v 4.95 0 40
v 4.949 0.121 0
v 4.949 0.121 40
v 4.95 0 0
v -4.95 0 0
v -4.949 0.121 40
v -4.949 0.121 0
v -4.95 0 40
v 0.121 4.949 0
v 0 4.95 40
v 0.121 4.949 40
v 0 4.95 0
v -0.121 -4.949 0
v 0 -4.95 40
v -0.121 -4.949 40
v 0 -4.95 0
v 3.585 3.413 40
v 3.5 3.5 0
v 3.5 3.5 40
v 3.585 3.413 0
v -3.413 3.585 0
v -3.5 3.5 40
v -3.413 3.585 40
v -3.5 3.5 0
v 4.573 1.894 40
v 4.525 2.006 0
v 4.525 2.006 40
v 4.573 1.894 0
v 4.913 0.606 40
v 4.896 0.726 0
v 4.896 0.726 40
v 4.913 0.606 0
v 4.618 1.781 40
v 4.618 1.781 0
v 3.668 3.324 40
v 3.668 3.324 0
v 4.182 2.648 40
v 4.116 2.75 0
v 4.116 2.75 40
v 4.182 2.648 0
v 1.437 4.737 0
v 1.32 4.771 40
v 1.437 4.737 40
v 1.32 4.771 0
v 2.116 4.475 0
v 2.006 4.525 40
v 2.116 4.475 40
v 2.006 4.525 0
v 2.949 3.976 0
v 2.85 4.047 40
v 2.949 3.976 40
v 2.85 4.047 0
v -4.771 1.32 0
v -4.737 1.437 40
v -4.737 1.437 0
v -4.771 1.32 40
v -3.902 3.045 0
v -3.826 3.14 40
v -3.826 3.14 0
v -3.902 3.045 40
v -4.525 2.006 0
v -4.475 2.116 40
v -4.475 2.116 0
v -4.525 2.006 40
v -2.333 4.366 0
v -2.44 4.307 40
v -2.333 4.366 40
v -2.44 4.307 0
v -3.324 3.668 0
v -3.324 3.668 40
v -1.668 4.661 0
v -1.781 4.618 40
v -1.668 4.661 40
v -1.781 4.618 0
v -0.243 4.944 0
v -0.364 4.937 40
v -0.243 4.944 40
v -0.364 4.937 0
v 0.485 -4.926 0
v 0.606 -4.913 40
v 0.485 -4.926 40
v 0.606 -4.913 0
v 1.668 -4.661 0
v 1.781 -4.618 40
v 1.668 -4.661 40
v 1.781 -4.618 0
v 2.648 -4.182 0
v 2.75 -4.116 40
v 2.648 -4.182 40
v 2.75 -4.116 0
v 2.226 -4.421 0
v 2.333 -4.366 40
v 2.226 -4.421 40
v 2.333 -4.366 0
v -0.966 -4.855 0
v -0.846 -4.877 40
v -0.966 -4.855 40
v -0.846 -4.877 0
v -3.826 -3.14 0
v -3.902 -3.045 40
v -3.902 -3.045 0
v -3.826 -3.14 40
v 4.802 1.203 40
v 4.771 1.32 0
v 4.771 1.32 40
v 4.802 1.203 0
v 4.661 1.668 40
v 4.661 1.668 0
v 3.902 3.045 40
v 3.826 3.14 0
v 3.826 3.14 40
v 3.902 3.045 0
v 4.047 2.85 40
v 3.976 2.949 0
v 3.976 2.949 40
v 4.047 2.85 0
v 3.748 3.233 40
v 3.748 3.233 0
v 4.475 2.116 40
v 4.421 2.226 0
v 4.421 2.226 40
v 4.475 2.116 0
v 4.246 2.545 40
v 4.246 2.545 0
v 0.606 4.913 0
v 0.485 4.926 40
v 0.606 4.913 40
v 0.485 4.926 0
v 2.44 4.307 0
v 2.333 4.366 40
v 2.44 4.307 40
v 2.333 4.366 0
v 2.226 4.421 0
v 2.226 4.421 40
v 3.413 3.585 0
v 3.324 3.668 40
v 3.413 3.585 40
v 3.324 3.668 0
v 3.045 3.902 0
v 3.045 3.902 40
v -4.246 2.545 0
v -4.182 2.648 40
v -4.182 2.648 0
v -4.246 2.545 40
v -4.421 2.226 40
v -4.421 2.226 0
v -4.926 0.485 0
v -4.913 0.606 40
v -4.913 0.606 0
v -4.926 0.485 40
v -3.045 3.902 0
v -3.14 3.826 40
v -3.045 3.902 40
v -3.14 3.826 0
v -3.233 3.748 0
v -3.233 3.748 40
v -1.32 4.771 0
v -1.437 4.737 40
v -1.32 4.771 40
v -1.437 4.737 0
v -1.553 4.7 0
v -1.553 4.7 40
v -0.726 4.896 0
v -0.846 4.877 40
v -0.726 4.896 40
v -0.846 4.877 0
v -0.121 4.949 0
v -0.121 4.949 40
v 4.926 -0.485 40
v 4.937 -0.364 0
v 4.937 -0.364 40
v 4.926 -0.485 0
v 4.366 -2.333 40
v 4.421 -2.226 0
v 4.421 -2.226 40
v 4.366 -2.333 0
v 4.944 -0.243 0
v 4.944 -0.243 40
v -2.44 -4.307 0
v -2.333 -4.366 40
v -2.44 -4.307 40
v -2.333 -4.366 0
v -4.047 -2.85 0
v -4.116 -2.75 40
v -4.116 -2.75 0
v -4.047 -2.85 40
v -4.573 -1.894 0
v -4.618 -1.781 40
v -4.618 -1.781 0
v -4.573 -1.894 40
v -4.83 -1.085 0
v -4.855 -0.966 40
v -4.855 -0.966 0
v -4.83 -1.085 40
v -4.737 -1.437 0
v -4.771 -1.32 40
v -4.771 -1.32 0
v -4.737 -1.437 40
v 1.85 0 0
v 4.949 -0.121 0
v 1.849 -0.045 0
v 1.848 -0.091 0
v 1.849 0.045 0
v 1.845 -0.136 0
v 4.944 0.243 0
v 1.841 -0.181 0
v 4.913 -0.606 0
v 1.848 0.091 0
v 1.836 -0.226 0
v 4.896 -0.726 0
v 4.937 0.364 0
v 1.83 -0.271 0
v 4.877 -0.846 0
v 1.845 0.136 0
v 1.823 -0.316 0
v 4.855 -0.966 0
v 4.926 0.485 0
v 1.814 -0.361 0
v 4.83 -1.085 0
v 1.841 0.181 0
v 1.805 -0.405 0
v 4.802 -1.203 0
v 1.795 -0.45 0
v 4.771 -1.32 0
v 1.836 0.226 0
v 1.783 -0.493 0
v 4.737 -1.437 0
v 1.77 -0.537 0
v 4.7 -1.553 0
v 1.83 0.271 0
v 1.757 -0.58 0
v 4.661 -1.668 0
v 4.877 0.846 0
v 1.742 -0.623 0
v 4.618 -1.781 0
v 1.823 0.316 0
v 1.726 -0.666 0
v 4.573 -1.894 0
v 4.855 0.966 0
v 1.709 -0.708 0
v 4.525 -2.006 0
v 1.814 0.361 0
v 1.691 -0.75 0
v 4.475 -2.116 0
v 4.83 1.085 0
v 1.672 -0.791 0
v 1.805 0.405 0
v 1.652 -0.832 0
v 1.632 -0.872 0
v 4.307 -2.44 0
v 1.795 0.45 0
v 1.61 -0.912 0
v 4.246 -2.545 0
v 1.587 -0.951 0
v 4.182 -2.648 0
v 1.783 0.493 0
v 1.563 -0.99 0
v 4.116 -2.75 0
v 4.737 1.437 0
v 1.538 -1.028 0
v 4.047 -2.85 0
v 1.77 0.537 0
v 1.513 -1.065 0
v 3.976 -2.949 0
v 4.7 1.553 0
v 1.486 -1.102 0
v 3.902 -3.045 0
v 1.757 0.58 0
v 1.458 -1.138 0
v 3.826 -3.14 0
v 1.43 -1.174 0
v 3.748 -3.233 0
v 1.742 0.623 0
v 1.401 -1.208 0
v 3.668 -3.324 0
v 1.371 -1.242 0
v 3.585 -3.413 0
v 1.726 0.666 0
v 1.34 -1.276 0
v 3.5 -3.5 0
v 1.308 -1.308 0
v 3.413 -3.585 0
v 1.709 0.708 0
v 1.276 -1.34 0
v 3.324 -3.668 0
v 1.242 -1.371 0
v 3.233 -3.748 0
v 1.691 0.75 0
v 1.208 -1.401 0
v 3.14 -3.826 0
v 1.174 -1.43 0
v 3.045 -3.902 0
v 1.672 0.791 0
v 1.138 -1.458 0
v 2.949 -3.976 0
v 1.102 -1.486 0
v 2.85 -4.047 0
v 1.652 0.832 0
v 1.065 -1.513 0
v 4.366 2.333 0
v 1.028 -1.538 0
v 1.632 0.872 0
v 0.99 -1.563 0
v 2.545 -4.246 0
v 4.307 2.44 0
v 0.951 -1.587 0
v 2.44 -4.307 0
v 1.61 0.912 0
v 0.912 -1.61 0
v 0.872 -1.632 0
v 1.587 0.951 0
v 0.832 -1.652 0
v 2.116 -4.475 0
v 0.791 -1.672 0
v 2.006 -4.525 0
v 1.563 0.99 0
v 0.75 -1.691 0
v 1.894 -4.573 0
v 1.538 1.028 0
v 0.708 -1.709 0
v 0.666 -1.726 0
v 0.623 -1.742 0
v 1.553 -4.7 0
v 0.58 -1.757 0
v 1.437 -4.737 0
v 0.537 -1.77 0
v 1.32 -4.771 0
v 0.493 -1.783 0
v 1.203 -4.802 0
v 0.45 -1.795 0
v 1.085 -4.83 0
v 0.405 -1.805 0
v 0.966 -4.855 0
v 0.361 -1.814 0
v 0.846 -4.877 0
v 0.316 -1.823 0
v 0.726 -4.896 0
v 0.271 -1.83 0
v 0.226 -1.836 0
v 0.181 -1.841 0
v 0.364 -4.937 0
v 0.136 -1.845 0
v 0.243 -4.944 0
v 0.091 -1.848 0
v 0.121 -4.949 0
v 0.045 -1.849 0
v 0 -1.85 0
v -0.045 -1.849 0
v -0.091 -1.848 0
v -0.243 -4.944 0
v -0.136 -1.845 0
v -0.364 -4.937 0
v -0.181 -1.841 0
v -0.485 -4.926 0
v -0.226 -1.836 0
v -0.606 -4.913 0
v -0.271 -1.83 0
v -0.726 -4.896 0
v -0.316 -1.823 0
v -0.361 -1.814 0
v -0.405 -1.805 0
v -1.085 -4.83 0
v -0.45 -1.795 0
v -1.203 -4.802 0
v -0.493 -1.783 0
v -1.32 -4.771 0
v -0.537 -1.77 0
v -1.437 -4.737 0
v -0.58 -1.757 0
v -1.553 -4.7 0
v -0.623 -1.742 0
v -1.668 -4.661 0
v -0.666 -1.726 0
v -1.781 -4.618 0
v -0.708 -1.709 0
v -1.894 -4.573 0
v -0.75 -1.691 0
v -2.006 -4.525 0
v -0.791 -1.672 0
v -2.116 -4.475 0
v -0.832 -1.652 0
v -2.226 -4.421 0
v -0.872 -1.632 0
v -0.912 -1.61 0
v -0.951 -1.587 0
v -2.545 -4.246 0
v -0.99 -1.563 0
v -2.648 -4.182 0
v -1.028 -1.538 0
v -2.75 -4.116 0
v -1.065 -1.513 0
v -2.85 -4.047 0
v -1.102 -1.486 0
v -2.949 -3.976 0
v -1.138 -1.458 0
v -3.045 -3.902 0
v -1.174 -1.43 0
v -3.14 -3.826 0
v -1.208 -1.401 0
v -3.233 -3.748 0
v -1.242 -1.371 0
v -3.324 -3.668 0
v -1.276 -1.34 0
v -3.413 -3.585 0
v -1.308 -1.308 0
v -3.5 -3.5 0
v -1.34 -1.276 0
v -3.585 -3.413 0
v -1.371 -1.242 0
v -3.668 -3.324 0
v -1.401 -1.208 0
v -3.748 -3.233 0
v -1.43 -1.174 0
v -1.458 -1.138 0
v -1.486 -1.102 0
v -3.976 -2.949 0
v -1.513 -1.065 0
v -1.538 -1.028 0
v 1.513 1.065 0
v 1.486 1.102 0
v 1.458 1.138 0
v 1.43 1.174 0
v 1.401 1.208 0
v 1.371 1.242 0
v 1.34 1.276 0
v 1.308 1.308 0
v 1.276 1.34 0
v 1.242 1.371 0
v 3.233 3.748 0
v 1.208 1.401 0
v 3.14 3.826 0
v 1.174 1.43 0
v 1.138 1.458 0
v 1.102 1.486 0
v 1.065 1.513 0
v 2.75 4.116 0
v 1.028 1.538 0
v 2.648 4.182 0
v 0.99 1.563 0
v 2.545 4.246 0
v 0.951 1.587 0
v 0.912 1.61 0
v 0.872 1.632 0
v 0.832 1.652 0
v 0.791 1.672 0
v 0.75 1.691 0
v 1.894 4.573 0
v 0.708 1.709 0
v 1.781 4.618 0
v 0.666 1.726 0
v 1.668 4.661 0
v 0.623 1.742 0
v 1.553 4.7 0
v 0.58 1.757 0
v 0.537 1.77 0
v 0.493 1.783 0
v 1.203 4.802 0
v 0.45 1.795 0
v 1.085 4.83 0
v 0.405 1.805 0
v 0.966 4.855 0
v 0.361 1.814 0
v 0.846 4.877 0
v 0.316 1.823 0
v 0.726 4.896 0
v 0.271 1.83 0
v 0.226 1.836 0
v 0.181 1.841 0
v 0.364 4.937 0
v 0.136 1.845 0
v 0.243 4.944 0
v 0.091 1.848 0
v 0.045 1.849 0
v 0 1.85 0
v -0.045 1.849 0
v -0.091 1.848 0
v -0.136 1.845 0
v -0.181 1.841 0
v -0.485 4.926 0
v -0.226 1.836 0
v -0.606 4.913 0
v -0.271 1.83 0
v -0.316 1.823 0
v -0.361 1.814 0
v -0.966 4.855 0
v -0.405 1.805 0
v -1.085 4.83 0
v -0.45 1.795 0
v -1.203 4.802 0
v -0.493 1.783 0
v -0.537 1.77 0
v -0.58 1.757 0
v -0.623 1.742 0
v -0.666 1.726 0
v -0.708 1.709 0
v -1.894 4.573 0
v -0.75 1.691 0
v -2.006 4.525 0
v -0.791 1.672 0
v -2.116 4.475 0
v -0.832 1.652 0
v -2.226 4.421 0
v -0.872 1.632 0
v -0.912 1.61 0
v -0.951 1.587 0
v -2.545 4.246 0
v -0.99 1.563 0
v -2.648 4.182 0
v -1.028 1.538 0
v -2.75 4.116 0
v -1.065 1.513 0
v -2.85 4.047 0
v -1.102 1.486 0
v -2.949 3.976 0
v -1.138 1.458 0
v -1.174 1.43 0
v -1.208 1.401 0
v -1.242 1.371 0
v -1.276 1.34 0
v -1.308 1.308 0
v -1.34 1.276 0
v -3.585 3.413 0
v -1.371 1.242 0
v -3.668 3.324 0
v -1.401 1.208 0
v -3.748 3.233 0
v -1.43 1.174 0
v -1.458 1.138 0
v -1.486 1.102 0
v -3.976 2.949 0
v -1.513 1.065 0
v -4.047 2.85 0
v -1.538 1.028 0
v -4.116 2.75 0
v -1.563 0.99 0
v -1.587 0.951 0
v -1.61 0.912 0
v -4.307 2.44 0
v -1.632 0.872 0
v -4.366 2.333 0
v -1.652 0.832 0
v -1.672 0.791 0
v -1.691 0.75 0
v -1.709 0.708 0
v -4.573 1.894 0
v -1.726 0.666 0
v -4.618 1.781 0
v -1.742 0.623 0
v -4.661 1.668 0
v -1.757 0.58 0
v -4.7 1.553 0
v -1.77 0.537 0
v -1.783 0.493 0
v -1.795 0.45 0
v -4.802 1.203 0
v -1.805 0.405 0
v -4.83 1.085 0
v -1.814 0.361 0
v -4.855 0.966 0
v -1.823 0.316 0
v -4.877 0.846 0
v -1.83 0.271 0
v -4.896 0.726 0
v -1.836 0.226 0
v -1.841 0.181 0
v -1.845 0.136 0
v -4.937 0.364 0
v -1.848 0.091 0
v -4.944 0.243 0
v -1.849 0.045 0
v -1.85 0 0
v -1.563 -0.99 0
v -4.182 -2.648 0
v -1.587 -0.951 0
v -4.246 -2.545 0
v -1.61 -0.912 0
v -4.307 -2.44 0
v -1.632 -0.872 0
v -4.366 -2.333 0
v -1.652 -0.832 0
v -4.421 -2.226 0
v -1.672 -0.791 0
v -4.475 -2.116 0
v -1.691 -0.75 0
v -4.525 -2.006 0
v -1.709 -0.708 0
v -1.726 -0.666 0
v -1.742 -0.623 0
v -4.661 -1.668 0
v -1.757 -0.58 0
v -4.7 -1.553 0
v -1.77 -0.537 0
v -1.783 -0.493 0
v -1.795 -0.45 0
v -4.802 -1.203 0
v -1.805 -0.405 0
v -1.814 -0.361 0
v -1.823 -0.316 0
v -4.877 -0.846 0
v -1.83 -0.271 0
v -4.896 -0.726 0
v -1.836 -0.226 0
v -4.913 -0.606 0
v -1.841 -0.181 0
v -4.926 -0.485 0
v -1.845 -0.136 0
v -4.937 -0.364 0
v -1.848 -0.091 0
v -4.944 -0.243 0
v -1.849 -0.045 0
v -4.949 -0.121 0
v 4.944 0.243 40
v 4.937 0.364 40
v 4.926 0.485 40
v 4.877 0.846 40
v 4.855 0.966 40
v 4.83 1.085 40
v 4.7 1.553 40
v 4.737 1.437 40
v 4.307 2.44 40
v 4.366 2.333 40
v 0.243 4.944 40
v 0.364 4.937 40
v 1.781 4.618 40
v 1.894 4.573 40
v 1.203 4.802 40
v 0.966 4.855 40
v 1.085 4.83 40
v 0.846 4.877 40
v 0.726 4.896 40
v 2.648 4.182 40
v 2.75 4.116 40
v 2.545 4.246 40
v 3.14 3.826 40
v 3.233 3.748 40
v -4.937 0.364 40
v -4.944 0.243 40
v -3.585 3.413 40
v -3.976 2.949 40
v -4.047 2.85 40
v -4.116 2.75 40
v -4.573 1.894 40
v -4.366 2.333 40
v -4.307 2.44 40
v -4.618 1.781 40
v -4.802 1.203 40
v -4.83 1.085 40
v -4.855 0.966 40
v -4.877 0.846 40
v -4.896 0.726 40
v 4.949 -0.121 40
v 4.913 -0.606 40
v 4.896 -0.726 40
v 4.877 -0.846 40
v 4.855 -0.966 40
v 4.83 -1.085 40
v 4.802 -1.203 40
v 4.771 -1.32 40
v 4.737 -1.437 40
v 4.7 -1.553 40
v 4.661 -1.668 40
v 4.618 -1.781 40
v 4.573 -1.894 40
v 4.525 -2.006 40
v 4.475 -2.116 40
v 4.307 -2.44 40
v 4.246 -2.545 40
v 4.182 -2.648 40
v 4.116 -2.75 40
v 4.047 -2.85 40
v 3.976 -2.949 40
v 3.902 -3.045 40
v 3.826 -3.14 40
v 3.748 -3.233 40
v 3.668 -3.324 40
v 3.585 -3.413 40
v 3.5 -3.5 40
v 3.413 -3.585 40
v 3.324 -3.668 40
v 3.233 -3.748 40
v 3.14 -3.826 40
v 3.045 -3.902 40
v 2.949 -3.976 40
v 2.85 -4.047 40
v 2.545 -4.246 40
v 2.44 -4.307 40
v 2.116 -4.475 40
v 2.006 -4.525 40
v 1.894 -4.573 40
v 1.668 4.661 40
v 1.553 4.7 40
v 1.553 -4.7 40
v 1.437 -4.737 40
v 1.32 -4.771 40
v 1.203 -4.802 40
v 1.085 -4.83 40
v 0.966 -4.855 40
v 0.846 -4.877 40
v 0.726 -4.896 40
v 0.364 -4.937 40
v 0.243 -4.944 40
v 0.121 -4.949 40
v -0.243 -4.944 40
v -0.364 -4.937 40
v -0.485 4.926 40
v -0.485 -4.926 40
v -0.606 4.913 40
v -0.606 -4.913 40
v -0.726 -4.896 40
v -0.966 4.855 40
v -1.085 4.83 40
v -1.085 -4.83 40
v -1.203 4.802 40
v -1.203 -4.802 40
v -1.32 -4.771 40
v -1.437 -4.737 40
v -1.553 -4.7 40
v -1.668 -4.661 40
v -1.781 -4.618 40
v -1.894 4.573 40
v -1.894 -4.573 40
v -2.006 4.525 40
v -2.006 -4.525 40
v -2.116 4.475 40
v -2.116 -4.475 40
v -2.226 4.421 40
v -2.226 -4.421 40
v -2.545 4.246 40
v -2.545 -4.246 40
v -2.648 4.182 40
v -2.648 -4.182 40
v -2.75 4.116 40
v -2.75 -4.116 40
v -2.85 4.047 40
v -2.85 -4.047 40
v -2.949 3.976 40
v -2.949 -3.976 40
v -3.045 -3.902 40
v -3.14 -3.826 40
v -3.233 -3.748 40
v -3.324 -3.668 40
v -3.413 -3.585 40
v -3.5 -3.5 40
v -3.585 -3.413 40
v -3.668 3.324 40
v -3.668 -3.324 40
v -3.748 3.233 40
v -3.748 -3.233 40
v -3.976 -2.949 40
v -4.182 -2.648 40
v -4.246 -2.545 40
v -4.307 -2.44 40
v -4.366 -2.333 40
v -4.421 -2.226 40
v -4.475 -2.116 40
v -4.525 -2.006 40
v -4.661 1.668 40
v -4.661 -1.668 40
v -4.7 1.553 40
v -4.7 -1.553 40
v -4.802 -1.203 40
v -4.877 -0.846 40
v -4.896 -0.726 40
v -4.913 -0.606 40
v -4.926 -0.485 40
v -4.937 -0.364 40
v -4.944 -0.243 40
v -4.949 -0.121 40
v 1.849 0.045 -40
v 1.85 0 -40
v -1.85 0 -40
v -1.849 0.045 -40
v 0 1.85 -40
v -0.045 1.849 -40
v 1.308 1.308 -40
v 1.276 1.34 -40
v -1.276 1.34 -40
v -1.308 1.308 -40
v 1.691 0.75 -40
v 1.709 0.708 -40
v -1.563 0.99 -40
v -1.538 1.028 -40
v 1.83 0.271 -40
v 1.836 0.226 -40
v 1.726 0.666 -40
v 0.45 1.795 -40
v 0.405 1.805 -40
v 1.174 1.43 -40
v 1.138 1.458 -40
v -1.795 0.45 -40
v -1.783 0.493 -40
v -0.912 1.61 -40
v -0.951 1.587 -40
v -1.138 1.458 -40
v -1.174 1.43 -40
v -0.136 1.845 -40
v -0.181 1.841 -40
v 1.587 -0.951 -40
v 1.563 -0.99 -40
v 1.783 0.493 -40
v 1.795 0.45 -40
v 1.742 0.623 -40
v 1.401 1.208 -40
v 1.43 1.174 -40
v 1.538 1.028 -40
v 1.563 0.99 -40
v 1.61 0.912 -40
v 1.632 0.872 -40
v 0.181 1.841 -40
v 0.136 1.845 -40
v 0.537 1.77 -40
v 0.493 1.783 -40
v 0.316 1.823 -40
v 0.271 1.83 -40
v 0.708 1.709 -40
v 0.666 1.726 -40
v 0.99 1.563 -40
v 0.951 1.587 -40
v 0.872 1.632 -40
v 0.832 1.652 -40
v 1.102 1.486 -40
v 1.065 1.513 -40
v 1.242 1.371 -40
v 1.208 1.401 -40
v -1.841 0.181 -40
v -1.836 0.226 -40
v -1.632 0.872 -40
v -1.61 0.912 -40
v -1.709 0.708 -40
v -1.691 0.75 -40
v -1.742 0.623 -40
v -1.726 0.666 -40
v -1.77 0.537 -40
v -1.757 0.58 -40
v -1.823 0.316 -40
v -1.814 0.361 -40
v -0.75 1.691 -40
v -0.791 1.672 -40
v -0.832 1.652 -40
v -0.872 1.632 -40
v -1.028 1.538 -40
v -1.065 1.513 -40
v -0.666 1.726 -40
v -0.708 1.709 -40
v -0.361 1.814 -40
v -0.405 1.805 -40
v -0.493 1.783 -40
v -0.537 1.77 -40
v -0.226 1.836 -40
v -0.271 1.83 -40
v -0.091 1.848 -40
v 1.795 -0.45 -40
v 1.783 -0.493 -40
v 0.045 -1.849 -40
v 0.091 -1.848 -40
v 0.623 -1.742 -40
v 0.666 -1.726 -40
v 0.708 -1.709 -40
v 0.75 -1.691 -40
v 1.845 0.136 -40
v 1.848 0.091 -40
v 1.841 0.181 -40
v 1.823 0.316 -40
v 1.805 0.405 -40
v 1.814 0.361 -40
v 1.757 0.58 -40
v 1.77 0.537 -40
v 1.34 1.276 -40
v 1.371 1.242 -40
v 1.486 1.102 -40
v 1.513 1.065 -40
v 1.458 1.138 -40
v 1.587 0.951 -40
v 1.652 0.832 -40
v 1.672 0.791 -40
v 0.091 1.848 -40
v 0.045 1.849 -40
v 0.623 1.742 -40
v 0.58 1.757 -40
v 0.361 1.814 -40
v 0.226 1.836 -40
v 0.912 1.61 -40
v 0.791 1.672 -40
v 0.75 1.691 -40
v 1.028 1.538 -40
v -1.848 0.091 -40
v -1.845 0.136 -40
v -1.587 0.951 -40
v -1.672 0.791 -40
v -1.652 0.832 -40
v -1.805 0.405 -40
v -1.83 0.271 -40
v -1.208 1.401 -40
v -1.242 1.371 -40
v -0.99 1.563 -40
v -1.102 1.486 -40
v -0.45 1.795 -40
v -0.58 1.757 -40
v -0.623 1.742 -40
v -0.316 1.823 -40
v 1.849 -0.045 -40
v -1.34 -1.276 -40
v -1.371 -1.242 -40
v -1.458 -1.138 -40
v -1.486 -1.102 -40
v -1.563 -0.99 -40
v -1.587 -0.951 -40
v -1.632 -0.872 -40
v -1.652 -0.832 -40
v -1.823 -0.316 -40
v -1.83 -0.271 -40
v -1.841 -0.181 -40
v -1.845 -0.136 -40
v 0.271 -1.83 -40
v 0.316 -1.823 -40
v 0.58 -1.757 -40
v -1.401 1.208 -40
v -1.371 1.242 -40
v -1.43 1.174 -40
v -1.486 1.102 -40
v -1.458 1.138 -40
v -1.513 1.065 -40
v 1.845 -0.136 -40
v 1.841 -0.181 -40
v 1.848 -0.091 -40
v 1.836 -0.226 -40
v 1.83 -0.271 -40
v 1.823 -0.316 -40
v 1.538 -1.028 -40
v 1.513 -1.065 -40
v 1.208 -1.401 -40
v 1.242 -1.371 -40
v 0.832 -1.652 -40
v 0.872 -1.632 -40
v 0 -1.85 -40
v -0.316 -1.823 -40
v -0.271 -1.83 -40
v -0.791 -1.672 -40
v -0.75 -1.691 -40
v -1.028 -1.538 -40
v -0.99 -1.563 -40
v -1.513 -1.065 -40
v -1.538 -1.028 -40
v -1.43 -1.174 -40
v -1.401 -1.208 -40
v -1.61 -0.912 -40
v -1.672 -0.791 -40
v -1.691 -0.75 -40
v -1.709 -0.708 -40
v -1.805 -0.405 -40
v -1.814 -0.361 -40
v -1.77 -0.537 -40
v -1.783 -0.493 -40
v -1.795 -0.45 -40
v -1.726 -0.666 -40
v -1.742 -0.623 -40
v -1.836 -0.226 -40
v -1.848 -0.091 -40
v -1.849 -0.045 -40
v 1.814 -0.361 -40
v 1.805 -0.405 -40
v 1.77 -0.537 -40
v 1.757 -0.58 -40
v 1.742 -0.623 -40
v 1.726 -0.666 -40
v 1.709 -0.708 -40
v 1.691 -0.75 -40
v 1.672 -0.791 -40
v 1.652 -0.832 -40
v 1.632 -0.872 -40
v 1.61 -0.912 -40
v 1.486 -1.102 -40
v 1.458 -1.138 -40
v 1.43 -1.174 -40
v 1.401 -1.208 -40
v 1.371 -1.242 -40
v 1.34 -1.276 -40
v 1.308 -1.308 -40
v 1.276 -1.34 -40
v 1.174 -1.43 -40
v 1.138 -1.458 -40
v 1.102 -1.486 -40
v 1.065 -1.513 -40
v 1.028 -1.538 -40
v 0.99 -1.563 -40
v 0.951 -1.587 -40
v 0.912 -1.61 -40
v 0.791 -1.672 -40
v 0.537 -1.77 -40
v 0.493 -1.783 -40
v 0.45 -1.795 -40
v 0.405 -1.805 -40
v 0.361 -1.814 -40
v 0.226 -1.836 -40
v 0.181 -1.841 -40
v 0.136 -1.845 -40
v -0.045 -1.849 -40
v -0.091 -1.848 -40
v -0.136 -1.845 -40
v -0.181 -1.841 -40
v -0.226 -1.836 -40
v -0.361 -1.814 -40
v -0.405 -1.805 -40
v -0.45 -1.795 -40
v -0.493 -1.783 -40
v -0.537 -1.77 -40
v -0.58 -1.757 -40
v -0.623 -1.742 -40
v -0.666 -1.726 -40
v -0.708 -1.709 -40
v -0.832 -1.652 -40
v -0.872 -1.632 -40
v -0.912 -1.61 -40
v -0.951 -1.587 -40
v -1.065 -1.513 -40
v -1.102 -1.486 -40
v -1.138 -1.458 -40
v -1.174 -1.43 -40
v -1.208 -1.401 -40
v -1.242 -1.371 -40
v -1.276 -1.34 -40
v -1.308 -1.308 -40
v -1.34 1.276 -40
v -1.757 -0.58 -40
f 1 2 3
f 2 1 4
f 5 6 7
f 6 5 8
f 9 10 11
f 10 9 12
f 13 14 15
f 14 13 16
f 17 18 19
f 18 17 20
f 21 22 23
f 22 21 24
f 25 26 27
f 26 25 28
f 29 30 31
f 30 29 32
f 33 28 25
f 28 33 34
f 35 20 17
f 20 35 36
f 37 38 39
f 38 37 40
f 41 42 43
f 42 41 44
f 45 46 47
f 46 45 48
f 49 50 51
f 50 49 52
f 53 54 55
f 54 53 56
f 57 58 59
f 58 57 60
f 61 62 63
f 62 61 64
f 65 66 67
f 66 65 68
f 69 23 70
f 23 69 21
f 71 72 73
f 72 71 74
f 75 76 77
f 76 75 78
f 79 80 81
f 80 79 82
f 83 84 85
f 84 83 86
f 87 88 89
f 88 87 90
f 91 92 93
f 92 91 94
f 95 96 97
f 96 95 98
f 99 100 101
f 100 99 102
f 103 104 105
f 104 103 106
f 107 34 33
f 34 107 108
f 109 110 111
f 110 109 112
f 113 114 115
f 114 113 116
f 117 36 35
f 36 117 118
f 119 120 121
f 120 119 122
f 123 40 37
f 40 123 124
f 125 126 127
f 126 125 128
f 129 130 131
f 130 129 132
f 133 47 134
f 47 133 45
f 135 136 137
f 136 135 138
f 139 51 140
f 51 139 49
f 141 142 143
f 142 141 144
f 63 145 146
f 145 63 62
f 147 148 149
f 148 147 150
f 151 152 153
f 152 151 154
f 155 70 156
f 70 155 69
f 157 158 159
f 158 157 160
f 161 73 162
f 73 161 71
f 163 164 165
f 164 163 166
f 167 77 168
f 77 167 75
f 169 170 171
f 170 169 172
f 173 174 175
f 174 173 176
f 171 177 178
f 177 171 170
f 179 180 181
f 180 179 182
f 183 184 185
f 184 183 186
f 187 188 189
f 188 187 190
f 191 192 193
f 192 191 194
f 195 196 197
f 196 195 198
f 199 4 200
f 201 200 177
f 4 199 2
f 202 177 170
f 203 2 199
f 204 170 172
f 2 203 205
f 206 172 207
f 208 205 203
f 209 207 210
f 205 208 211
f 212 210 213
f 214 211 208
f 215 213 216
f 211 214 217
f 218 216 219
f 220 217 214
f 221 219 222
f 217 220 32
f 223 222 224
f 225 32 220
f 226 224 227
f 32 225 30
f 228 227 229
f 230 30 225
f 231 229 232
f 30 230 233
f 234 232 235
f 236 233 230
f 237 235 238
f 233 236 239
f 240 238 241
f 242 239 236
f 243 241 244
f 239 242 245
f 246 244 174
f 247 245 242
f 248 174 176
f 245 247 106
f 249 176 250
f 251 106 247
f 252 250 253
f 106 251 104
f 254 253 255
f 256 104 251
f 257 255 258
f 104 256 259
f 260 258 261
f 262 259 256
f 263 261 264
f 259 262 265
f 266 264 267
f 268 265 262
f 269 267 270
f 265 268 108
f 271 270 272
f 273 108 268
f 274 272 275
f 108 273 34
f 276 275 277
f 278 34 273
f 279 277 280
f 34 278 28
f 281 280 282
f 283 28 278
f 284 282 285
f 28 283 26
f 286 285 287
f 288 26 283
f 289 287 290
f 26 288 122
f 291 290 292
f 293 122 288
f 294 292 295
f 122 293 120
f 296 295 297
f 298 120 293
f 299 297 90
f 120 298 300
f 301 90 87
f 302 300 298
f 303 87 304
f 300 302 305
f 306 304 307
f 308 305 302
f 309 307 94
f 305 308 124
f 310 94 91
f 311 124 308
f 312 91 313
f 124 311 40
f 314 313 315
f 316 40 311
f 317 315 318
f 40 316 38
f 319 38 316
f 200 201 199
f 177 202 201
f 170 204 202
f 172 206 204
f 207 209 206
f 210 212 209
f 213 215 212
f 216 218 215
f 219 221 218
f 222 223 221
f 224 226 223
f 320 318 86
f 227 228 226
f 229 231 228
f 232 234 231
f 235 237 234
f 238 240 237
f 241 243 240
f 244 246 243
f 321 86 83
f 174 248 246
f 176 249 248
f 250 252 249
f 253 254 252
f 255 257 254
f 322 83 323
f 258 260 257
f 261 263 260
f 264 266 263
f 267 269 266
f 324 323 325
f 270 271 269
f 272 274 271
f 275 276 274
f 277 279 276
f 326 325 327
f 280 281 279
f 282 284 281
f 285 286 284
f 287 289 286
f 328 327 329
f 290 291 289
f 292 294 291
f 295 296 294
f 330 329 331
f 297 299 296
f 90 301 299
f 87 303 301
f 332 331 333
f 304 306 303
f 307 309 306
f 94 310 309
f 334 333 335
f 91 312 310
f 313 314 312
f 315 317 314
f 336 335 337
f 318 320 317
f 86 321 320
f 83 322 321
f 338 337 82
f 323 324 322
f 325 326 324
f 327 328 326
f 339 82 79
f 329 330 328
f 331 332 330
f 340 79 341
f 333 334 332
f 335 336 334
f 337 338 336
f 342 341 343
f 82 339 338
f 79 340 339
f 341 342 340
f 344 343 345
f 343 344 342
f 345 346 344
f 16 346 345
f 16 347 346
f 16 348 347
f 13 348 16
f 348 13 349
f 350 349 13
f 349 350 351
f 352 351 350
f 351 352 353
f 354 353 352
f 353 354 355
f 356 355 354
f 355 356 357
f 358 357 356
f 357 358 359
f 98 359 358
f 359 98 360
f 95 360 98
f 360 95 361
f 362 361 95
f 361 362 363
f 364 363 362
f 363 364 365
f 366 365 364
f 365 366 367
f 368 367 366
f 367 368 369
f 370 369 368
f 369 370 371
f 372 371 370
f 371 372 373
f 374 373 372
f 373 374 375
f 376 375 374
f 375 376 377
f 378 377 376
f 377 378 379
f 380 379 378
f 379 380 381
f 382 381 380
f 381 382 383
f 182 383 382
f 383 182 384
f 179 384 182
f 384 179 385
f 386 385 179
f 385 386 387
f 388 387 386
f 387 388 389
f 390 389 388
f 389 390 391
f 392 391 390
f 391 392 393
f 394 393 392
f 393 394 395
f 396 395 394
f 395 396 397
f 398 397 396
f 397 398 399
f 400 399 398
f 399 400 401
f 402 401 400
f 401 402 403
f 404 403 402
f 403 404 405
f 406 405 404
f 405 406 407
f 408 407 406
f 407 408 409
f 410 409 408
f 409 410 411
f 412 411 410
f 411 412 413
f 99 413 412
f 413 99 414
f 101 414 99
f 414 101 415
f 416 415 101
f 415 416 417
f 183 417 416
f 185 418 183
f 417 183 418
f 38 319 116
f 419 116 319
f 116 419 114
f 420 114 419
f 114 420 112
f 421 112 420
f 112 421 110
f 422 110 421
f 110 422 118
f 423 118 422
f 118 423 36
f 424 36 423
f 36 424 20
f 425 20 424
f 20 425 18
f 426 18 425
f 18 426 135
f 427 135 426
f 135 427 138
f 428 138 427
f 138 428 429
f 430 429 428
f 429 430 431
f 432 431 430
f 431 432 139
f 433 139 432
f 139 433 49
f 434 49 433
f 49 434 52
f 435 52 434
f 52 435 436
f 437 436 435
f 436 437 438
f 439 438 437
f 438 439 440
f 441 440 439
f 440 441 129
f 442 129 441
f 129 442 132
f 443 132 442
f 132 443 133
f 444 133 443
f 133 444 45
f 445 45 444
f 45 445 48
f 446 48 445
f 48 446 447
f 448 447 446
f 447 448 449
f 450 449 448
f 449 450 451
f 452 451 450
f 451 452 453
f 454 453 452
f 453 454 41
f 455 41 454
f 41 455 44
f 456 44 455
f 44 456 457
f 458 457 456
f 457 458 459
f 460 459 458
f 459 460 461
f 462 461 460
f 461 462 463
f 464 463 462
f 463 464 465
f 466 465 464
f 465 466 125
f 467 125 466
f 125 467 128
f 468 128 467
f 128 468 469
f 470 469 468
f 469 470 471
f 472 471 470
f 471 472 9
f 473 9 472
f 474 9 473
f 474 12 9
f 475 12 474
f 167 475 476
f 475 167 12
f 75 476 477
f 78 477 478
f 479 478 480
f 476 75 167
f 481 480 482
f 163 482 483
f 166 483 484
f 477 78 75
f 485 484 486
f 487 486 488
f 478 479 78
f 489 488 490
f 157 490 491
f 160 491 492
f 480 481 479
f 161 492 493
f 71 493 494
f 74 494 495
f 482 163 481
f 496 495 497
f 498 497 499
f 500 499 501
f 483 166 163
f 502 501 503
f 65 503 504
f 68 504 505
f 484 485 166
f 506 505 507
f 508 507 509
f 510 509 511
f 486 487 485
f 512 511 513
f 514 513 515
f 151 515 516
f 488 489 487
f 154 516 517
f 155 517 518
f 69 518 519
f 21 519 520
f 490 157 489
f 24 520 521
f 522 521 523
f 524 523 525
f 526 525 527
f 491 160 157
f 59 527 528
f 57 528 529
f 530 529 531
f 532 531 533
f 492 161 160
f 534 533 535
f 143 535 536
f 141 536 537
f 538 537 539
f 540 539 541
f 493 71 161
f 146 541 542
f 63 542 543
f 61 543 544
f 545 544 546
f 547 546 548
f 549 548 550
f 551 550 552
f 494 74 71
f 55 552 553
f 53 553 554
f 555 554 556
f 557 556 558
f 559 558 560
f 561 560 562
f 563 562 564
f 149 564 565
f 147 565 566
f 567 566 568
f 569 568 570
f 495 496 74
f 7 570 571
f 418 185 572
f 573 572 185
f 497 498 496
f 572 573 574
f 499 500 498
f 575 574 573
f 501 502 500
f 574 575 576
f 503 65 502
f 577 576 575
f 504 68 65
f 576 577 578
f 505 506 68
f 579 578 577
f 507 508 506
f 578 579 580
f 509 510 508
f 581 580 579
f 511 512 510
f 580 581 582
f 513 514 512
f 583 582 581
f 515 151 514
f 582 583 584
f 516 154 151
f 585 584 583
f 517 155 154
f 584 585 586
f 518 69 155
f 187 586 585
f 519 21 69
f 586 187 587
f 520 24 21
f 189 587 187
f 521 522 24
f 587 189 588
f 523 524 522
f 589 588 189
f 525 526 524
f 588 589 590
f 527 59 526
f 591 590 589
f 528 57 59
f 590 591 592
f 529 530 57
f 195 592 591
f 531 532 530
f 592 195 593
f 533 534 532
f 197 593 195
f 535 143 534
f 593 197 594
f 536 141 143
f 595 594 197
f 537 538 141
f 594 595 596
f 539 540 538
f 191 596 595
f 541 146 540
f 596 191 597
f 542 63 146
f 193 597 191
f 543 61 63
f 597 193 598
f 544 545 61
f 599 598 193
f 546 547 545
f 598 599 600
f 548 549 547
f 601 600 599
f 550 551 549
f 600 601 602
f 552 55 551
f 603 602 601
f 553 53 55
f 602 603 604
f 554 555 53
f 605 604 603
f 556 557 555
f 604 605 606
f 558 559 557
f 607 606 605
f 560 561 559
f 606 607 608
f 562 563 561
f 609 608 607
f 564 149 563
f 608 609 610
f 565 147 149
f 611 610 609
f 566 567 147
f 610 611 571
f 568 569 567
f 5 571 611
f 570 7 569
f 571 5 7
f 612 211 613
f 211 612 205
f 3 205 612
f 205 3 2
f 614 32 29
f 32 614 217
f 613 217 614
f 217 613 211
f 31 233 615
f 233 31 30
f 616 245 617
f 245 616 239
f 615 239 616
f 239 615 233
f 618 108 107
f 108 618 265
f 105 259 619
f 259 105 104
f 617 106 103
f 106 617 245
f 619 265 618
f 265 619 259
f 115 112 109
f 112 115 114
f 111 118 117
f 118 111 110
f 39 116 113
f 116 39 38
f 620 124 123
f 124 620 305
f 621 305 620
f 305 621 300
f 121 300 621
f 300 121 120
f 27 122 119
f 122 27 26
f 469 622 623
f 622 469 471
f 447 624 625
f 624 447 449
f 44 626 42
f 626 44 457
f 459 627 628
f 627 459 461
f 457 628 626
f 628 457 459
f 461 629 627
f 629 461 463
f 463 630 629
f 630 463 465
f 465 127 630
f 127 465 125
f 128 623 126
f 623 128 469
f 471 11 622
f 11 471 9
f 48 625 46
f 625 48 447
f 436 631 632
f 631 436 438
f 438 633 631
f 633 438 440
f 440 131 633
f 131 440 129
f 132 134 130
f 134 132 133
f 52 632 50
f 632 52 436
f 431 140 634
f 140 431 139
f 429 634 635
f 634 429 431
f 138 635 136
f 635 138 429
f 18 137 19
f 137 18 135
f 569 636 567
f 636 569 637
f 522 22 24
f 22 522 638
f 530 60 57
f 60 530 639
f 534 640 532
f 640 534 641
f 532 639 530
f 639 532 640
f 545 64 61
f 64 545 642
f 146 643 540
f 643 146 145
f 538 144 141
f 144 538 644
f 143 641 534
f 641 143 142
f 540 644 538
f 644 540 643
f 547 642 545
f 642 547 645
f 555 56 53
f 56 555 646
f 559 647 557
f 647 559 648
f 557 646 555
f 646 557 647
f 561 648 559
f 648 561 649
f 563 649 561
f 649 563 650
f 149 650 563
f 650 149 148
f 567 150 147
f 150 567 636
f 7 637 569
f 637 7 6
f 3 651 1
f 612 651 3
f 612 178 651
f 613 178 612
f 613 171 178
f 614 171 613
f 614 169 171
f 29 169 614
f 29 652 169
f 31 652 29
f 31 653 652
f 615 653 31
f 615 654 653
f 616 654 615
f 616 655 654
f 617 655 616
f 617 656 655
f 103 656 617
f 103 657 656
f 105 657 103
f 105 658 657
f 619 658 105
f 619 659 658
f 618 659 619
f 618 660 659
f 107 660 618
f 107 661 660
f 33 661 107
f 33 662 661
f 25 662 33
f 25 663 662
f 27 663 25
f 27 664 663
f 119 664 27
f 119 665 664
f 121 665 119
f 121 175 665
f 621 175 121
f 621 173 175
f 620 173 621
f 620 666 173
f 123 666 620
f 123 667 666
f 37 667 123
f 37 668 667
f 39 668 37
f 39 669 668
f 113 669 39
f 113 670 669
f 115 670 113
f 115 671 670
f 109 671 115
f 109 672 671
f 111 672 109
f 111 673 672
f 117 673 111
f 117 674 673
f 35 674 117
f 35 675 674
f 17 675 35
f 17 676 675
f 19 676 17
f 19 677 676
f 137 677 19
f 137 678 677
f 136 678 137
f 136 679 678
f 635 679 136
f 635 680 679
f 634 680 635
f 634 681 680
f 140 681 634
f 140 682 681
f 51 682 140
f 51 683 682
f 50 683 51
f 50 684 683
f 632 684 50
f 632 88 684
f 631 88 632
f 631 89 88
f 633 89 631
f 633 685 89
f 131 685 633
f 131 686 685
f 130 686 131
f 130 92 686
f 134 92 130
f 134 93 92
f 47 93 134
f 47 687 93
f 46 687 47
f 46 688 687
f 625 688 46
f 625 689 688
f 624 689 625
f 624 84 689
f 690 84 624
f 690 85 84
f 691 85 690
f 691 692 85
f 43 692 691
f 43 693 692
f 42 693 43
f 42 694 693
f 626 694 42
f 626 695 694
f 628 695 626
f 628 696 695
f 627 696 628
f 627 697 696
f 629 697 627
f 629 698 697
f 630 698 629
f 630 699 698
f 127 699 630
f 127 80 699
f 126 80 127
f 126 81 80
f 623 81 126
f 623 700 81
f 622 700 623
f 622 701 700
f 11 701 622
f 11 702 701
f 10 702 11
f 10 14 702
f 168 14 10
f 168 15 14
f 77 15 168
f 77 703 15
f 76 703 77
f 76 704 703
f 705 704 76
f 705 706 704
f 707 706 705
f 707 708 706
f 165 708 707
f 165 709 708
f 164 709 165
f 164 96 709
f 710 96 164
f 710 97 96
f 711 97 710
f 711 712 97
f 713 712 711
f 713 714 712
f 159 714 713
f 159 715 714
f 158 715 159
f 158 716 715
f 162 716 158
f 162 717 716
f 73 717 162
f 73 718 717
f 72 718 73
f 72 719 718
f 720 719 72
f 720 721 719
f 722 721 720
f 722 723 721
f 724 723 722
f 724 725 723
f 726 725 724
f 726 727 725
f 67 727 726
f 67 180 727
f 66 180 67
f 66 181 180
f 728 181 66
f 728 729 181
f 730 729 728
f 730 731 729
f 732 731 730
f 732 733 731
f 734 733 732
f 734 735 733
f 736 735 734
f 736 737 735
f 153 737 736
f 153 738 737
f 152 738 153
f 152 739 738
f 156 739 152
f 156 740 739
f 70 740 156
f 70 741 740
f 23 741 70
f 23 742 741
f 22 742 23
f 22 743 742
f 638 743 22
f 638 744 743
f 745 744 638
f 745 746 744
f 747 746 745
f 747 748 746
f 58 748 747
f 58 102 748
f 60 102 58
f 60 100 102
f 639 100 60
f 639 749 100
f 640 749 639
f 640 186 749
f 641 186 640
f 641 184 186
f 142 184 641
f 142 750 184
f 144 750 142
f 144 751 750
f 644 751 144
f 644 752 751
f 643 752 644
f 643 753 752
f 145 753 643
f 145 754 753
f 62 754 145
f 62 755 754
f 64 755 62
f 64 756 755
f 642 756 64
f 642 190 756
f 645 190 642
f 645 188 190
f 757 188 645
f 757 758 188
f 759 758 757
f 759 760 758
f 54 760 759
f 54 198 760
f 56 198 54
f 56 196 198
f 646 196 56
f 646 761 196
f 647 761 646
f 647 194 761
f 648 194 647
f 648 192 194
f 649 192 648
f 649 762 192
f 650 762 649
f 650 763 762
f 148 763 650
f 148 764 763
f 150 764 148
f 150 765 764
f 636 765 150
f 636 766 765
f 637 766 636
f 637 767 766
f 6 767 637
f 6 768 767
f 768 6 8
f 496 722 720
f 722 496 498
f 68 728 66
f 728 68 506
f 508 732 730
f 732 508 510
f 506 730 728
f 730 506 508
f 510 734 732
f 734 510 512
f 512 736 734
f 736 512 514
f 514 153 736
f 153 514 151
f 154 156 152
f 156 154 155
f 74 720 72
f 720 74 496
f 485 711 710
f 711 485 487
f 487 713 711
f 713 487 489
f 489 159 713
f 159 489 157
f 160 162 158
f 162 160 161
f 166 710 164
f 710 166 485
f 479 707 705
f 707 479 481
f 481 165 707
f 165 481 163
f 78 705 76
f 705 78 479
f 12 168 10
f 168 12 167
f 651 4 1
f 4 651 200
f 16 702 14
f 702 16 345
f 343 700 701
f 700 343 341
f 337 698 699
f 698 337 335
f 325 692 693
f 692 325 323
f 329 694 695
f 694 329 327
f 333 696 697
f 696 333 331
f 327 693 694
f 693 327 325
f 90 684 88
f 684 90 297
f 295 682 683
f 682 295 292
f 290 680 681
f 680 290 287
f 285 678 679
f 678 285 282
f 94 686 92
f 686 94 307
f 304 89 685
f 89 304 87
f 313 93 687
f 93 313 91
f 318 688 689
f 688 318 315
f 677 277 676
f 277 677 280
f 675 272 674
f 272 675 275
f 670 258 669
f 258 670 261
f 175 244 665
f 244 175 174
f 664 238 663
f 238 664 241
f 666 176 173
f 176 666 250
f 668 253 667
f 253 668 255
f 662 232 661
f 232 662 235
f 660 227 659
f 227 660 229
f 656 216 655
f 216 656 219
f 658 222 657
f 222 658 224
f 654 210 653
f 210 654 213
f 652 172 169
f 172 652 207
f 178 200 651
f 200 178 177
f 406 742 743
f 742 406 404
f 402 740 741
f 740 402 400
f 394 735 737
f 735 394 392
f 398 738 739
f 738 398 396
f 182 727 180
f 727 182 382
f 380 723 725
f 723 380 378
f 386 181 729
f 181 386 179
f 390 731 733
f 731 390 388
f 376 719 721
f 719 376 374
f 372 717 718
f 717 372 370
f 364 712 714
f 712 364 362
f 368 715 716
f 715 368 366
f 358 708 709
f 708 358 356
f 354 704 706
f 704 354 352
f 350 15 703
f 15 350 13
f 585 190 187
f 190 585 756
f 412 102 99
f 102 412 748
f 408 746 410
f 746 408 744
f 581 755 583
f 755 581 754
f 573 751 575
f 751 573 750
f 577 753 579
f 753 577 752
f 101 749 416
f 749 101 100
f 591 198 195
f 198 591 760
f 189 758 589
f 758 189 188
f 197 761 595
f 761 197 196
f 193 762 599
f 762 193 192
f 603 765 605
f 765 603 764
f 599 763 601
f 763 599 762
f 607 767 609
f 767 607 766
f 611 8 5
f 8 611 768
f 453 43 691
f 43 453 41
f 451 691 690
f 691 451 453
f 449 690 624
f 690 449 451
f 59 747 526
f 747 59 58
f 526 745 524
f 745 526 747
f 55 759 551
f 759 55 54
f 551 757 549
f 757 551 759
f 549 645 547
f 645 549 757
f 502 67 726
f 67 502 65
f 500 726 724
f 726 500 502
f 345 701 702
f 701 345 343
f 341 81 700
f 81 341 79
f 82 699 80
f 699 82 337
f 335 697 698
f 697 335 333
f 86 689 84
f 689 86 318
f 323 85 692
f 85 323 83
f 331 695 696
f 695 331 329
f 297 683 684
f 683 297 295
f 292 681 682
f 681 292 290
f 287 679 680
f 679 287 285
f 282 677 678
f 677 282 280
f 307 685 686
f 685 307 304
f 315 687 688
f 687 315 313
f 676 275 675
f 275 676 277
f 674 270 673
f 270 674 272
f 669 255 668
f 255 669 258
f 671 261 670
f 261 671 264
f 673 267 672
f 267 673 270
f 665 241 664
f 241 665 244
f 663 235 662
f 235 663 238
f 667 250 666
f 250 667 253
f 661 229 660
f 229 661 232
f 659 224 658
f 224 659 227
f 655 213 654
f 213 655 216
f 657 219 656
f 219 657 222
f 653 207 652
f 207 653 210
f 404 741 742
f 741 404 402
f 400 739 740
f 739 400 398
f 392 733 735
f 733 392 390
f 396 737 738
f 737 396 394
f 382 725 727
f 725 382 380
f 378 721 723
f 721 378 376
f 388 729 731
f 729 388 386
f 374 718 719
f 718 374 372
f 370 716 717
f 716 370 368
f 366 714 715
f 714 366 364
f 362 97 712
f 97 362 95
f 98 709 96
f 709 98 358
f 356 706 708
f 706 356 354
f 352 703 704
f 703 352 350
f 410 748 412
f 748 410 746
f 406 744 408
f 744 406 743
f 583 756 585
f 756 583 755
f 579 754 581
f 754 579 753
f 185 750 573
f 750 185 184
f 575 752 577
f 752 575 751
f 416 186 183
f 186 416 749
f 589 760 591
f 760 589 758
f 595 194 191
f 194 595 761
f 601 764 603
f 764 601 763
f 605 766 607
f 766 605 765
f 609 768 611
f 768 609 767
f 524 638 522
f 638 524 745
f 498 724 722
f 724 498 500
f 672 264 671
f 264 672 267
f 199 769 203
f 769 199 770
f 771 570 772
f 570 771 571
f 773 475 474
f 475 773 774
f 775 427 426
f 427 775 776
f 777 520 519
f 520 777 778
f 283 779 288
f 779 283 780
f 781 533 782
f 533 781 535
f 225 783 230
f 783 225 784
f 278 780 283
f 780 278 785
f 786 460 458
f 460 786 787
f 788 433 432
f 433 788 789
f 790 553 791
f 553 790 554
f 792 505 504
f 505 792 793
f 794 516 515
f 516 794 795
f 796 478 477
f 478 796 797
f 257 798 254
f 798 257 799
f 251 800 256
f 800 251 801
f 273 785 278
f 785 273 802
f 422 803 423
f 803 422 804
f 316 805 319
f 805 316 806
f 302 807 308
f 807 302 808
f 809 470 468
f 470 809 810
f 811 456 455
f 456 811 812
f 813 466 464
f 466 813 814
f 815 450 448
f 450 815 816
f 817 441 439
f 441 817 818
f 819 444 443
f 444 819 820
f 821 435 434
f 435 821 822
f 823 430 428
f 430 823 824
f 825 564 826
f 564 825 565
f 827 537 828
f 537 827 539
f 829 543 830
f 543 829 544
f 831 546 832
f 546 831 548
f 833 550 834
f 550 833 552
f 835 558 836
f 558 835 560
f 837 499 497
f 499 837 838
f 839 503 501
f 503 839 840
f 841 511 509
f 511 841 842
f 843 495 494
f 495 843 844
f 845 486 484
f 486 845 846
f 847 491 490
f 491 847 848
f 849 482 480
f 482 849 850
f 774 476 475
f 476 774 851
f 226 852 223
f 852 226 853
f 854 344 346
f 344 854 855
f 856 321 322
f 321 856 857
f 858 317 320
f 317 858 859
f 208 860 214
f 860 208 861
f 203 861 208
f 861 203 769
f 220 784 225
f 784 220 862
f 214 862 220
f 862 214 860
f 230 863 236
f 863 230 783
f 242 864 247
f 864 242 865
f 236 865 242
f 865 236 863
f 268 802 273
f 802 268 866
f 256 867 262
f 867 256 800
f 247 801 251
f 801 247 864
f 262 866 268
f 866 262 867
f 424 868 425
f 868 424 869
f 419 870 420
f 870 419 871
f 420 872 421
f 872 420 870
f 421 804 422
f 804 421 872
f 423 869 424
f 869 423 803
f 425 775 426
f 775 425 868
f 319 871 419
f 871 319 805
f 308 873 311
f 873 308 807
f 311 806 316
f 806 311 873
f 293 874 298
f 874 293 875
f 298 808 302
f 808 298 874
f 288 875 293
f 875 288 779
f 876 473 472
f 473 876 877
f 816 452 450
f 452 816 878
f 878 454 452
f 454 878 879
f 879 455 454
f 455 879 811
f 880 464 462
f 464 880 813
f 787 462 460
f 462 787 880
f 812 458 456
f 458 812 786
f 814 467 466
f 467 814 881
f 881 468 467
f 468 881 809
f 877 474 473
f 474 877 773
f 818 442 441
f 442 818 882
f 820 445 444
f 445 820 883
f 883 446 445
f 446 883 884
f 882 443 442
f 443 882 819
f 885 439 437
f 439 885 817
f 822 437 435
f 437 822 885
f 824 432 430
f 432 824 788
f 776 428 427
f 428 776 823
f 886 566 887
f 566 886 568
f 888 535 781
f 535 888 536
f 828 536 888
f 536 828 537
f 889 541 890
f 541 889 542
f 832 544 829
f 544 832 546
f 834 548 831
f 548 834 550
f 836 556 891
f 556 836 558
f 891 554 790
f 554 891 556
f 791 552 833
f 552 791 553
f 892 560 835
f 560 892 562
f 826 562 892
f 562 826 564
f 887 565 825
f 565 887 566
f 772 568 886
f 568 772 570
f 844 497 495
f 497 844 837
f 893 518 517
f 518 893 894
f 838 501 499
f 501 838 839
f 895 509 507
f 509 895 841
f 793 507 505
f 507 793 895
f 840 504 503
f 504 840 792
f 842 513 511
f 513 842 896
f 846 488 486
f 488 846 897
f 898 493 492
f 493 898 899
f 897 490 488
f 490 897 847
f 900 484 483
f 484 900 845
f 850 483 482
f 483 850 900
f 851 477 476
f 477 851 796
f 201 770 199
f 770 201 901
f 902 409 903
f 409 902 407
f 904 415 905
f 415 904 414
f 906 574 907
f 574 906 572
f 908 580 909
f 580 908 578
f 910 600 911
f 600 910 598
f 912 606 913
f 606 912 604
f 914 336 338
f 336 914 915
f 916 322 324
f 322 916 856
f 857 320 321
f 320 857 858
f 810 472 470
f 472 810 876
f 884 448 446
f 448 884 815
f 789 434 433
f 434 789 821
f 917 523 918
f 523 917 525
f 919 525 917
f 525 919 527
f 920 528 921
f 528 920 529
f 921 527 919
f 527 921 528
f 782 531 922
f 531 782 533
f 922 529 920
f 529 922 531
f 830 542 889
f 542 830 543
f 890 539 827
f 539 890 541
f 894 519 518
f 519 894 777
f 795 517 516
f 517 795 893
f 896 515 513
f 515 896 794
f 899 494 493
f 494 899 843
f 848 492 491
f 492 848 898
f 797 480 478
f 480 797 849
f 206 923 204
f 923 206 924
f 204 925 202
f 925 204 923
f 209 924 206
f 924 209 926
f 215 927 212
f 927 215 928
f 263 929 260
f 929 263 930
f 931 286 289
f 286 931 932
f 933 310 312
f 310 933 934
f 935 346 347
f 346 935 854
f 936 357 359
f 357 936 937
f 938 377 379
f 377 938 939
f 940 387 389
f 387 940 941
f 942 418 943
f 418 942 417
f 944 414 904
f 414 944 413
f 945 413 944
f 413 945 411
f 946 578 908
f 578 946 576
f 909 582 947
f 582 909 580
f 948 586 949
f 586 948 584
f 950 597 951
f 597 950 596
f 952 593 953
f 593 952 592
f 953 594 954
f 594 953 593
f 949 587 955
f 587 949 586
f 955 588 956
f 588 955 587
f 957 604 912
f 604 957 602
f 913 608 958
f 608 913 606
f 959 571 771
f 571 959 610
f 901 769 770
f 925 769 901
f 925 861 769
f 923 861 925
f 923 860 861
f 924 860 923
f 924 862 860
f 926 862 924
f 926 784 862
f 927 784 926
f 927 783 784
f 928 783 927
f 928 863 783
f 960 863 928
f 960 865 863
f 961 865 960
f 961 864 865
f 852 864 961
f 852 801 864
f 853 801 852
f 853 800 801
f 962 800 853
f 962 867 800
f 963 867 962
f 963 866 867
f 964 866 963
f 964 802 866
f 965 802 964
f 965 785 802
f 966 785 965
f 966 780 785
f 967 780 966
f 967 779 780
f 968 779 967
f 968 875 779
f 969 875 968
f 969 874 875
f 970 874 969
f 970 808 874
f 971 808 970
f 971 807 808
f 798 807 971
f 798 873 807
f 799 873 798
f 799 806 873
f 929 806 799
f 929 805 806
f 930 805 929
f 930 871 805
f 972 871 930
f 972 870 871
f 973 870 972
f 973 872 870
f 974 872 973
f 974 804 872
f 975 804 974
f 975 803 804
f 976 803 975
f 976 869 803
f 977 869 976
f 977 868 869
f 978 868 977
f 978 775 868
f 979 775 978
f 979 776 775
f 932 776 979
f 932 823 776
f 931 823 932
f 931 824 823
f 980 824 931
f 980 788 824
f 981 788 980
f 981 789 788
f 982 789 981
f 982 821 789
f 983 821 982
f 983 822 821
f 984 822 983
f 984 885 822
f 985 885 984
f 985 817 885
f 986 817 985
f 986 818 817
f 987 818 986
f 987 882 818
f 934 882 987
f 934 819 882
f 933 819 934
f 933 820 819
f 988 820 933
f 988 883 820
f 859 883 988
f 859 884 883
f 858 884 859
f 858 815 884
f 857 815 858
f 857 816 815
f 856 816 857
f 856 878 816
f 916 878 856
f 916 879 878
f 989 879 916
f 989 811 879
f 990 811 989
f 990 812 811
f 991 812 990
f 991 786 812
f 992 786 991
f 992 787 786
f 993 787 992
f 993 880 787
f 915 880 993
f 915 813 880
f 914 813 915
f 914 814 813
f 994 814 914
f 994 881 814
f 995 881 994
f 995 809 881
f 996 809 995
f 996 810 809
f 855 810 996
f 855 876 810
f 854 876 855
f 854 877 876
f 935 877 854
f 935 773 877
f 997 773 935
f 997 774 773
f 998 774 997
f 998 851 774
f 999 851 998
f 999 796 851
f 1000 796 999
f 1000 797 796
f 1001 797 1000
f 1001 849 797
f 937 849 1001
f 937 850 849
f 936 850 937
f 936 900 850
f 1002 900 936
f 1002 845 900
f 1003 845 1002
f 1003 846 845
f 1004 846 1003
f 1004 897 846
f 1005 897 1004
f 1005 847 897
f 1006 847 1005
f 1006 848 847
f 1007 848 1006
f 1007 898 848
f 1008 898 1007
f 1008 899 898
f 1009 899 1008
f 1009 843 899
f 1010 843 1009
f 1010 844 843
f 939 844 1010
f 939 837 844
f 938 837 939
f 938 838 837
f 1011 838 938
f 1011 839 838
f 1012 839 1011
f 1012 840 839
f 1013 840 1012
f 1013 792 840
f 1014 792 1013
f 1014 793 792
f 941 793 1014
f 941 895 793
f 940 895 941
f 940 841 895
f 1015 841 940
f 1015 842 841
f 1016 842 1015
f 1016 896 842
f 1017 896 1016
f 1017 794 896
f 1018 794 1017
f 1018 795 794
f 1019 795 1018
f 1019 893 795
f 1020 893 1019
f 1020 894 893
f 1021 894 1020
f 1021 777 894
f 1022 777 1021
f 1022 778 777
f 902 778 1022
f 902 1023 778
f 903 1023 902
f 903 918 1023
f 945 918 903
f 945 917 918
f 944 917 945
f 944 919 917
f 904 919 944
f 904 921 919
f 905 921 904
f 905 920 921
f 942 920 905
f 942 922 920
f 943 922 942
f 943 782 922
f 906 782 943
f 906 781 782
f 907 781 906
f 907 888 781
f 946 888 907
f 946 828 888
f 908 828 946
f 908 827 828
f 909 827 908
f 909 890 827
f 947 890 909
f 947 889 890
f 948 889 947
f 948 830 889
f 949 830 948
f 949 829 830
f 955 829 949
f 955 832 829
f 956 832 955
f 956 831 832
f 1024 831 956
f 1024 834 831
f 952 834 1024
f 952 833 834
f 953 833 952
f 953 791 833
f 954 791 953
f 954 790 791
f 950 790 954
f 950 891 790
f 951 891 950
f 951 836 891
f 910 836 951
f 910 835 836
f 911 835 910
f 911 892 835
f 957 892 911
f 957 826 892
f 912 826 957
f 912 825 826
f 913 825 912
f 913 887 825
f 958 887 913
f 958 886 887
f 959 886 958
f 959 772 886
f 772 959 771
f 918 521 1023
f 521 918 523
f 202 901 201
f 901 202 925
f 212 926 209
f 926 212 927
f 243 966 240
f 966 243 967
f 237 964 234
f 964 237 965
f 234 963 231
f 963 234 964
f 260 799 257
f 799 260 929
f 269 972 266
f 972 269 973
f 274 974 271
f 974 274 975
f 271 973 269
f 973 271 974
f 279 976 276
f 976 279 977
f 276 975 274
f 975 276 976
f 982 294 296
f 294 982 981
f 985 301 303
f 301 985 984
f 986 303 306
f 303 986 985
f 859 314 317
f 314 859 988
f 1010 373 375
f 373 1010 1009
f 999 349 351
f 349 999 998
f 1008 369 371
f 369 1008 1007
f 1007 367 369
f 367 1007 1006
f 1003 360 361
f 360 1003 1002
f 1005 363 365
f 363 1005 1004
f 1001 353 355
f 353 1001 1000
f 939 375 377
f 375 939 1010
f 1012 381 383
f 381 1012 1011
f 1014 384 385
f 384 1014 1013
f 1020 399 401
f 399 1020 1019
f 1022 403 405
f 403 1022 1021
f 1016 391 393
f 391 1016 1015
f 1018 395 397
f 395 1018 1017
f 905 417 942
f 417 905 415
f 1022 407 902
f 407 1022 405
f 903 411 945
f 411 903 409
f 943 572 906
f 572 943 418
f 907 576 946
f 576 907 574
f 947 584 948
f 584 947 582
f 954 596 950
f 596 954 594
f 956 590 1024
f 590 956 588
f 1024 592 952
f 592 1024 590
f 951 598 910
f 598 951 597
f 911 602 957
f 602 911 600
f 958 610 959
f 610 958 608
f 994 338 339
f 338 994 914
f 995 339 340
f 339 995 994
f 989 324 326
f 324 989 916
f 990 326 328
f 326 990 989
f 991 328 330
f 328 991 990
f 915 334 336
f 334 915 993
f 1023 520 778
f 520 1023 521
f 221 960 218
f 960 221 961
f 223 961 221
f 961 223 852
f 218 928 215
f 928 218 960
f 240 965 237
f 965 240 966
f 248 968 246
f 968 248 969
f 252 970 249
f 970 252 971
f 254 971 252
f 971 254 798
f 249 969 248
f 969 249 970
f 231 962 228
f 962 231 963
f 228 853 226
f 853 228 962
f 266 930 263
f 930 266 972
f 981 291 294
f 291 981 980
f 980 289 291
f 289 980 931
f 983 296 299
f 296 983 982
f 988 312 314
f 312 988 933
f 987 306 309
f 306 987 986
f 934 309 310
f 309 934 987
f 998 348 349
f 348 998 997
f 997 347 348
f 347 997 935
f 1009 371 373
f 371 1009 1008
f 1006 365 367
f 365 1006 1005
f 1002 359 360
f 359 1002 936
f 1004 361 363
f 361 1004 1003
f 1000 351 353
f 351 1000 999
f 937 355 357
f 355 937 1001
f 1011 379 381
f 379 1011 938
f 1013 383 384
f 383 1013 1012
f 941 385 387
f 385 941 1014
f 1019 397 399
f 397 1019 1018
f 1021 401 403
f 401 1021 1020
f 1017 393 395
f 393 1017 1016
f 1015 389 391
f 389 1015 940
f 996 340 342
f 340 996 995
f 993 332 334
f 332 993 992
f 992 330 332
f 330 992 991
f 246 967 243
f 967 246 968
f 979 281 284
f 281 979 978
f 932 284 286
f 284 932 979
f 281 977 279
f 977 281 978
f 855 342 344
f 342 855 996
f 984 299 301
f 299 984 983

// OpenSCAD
// M3 bolt negative space for creating holes in 3D printable models
// Part of Vör, http://vor.space
// ©Futurice Oy, paul.houghton@futurice.com, CC-attribution-sharealike license, http://creativecommons.org/licenses/by-sa/4.0/

$fn=256;

shaft_radius = 3.2/2;
head_radius = 5.9/2;

m3_bolt_space();

module m3_bolt_space(head_extra=2, shaft_extra=.25, head_height=40, length=40) {
    cylinder(h=head_height, r=head_radius + head_extra);

    translate([0, 0, -length])
        cylinder(h=length, r=shaft_radius + shaft_extra);
}
